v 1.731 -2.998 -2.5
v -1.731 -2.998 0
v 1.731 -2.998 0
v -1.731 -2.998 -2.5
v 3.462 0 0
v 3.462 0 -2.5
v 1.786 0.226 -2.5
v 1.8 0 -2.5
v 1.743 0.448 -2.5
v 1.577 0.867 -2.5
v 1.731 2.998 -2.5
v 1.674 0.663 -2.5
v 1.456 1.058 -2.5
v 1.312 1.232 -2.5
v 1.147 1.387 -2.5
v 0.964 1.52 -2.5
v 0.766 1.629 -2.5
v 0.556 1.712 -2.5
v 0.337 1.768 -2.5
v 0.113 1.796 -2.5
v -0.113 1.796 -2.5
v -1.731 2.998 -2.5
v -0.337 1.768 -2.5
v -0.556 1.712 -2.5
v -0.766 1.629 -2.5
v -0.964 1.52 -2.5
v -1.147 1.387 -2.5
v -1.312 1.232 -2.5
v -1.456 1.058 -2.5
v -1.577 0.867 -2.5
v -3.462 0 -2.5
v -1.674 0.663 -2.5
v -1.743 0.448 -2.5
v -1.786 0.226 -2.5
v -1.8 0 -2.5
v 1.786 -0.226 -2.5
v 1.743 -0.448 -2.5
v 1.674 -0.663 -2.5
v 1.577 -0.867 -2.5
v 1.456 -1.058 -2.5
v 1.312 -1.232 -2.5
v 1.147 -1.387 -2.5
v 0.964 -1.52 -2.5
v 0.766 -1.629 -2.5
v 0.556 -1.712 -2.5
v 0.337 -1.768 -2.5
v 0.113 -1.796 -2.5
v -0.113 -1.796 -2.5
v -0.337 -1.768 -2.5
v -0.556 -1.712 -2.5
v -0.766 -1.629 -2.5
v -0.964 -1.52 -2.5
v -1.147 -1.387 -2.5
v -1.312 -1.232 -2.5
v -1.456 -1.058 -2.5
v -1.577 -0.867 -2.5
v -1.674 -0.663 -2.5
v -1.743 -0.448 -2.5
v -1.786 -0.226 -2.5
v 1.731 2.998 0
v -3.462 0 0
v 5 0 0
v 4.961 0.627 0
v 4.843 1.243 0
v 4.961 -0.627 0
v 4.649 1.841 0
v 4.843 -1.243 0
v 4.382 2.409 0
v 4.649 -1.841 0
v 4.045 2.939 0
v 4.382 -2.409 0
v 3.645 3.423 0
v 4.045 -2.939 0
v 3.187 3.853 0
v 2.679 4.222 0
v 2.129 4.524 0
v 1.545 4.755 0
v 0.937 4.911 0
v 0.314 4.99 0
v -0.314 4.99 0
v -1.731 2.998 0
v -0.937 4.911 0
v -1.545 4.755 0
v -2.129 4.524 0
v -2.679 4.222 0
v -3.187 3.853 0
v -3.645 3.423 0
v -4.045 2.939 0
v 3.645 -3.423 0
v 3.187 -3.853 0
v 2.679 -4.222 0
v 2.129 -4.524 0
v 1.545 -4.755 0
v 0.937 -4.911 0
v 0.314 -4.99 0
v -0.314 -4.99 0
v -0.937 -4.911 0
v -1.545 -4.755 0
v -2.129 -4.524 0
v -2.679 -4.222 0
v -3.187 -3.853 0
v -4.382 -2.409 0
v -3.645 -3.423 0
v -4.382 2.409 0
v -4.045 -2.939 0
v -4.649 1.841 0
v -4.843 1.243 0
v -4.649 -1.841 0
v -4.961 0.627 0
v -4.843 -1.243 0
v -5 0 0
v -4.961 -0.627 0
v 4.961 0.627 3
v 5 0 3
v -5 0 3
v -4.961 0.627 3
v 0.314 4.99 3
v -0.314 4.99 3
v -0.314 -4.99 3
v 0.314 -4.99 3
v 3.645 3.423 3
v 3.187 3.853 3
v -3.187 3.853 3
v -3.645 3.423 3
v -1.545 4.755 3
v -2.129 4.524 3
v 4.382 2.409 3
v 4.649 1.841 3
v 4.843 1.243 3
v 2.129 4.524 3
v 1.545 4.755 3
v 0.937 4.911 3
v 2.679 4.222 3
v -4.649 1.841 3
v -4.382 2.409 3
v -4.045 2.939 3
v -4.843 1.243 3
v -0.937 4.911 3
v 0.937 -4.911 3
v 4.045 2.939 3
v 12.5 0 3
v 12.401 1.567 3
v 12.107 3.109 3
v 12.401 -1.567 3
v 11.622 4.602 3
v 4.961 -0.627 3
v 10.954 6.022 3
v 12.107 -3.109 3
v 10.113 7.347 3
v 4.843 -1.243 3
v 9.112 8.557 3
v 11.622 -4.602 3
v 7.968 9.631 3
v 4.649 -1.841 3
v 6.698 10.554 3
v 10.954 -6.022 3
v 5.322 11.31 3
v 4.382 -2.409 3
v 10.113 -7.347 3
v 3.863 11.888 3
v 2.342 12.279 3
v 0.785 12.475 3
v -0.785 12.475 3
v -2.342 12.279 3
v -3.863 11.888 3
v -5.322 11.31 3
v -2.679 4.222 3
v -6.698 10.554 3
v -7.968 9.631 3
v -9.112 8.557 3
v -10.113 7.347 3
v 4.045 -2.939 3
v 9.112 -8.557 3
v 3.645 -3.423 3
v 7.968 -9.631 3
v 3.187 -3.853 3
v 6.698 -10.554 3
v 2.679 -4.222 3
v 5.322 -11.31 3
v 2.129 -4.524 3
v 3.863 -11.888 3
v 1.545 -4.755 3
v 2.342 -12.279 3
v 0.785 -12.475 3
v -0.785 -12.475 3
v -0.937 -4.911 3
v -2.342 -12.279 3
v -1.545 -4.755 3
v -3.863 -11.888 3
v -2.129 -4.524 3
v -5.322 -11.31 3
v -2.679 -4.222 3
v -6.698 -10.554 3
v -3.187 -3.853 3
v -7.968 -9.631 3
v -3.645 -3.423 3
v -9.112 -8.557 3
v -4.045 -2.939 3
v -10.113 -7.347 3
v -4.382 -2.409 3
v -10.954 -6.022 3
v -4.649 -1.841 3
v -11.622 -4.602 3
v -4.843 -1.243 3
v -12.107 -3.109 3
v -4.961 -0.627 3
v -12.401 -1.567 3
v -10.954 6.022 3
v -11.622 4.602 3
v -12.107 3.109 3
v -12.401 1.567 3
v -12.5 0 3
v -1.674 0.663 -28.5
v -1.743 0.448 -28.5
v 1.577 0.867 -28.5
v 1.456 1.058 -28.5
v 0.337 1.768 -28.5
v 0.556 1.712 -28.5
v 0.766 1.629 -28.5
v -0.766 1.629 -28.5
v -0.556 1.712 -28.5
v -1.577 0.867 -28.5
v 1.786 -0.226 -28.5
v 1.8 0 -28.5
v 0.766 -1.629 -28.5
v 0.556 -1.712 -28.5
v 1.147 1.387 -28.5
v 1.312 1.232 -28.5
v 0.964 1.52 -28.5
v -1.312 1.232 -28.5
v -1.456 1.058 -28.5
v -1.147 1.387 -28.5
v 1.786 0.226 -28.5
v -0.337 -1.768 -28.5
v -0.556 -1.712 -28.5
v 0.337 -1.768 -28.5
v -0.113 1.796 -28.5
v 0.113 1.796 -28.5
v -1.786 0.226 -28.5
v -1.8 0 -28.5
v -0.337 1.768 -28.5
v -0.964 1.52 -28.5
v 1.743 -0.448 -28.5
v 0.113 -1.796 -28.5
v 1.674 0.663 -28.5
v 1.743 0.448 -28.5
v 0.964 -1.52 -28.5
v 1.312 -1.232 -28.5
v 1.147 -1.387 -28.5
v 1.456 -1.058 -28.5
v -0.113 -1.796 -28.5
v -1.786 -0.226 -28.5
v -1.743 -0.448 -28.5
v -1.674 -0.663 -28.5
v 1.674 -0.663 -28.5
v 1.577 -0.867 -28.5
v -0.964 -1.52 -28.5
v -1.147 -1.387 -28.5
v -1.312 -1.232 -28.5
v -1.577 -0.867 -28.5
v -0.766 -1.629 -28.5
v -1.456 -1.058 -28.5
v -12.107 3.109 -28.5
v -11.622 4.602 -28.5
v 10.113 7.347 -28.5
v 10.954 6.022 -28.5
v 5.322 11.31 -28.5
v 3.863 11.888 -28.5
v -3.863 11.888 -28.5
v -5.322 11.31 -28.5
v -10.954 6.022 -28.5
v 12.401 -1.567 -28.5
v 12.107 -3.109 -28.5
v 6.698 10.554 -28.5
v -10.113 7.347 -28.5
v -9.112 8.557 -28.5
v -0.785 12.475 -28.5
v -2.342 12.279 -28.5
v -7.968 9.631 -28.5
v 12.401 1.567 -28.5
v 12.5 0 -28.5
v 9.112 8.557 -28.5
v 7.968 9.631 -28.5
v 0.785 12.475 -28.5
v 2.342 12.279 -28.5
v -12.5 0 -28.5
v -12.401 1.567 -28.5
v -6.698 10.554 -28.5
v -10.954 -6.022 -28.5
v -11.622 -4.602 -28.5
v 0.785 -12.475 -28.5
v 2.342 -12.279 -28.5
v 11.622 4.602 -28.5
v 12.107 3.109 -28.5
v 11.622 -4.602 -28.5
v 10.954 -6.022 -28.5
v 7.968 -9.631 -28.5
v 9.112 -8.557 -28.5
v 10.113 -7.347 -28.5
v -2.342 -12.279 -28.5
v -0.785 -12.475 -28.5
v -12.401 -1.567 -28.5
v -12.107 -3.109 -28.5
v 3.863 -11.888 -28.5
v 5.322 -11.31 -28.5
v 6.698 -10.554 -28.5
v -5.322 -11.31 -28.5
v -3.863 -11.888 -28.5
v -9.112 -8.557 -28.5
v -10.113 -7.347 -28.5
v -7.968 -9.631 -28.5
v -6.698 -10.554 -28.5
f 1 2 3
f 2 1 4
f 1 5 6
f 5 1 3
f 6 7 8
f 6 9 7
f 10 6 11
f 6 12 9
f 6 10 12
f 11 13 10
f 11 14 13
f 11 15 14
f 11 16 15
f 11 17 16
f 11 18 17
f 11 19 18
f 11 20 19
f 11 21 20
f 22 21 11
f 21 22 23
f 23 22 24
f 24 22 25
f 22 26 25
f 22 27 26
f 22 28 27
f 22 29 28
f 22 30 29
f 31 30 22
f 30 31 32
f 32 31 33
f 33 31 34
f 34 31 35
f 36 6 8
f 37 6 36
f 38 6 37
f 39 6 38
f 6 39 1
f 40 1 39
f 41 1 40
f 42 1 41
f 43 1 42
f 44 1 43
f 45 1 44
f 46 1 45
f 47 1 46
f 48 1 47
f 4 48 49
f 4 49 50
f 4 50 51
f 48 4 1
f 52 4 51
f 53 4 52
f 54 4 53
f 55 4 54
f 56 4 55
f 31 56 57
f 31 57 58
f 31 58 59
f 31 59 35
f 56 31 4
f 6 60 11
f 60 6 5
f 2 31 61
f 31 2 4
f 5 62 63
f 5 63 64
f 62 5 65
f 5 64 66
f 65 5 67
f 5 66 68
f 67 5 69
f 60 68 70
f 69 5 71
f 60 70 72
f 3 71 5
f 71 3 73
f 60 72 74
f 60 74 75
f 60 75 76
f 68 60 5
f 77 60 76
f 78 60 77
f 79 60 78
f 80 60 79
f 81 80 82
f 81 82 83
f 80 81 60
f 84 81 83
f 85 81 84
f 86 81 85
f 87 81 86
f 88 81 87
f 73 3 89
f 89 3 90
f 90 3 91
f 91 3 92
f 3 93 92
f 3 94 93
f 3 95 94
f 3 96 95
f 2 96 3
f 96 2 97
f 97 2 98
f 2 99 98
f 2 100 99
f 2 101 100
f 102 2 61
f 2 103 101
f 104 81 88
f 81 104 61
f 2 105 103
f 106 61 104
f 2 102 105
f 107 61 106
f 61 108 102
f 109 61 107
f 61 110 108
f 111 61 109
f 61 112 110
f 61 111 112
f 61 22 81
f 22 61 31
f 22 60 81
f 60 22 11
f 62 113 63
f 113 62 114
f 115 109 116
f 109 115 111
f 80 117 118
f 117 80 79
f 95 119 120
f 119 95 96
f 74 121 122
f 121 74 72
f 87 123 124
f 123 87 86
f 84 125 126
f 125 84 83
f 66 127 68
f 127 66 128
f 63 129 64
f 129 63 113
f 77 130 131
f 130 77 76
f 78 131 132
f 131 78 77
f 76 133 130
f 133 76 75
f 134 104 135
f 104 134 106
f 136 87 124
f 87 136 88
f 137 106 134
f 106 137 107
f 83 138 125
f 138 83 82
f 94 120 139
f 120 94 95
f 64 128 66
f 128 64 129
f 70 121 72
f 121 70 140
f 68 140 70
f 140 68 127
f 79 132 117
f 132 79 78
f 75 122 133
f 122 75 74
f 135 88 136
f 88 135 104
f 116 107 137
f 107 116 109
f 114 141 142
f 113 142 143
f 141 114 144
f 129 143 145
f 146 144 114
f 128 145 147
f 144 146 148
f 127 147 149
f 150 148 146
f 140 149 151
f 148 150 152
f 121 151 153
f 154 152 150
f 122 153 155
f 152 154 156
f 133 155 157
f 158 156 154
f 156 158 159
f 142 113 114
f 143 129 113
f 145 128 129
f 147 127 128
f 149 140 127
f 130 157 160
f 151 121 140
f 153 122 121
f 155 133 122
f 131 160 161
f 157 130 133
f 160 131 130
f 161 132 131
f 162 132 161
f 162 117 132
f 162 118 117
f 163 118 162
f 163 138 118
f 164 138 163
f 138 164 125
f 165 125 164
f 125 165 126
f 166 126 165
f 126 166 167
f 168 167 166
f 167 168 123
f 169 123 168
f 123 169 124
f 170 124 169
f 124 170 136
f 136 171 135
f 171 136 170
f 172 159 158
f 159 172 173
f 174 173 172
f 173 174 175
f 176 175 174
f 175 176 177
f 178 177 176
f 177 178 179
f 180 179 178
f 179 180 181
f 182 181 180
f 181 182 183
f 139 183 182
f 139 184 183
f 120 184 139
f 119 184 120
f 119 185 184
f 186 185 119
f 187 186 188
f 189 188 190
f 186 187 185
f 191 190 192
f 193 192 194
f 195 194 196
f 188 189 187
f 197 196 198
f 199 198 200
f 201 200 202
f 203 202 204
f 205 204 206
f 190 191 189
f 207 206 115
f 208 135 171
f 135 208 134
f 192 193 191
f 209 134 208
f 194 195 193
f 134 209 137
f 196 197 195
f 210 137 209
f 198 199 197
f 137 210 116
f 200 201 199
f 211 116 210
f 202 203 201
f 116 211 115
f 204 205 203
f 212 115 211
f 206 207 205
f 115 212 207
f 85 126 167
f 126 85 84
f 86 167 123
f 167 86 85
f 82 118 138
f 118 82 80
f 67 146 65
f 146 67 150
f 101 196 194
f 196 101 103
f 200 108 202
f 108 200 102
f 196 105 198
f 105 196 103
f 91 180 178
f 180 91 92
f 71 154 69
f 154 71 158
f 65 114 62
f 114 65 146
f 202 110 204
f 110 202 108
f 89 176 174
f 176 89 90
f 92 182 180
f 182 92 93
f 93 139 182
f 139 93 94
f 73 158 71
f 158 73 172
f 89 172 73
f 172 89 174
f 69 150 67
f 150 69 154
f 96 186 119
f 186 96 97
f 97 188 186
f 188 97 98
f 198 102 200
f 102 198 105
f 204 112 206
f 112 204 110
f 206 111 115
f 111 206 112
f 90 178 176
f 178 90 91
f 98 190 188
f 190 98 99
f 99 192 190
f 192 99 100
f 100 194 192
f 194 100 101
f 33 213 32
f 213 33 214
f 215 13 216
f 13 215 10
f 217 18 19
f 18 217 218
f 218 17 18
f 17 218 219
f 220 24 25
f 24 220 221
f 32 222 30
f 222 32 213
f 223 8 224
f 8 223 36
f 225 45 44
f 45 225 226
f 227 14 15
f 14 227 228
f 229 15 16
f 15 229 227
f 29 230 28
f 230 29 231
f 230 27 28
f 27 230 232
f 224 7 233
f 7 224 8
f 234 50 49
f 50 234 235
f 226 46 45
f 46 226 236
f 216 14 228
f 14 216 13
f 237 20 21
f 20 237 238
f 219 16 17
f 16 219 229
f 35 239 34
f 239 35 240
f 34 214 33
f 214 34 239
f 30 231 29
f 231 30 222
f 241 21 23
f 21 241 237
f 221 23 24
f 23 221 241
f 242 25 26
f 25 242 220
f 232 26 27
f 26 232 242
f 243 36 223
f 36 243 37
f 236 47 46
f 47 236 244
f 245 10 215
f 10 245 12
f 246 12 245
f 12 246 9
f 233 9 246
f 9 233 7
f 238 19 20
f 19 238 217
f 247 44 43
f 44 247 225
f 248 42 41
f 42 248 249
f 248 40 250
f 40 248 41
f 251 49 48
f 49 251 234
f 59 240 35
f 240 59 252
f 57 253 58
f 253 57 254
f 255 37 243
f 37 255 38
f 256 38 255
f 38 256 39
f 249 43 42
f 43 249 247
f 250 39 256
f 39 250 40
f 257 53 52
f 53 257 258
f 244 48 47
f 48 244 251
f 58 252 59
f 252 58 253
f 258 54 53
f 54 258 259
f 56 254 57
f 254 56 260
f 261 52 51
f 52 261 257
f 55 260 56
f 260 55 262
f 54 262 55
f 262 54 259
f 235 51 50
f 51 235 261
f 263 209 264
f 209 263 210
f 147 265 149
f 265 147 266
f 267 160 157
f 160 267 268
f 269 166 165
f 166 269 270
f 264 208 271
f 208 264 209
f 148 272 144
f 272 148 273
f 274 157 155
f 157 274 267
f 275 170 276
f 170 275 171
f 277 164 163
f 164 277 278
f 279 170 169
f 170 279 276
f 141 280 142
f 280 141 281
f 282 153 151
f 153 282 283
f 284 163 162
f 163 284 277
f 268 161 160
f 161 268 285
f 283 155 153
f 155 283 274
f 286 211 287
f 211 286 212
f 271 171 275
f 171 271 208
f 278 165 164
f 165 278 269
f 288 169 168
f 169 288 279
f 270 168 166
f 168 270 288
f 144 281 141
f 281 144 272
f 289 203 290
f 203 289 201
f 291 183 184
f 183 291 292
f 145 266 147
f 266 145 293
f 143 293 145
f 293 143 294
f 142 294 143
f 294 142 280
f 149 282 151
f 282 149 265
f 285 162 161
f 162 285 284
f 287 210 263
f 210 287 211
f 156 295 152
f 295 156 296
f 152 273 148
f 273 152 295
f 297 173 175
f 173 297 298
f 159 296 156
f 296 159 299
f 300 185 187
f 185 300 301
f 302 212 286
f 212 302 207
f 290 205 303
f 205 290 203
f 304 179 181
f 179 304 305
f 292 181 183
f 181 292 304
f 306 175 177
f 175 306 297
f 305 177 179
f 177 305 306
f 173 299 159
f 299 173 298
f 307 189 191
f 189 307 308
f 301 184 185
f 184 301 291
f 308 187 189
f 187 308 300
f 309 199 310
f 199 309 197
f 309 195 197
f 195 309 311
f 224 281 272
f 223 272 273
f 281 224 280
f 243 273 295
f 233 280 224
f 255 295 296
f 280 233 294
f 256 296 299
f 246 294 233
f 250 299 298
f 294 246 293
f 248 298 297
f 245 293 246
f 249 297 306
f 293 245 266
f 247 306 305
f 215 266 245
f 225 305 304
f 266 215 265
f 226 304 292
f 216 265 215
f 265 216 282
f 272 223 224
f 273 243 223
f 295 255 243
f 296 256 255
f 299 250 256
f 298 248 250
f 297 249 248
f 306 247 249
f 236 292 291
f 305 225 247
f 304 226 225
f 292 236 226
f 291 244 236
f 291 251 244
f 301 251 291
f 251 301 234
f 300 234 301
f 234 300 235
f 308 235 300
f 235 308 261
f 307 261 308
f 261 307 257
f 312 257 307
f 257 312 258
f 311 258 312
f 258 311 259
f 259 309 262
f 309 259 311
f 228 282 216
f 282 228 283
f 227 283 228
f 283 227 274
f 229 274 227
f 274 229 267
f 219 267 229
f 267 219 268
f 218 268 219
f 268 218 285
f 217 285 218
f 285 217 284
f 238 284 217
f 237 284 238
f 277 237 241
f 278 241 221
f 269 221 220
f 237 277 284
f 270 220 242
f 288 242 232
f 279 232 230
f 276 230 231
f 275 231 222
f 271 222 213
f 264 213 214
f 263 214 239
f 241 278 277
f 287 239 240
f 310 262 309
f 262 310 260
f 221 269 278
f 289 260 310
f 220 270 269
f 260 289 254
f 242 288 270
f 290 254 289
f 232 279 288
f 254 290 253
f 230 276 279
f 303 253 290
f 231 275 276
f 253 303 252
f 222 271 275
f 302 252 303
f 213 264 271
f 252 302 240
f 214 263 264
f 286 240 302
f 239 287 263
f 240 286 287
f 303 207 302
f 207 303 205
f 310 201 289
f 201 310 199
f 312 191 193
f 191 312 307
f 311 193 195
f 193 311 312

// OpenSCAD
$fn = 50;


difference() {
	union() {
		translate(v = [0, 0, -28.5000000000]) {
			cylinder(h = 31.5000000000, r = 12.5000000000);
		}
	}
	union() {
		translate(v = [0, 0, 0]) {
			rotate(a = [0, 0, 0]) {
				difference() {
					union() {
						translate(v = [0, 0, -2.5000000000]) {
							linear_extrude(height = 2.5000000000) {
								polygon(points = [[3.4620000000, 0.0000000000], [1.7310000000, 2.9981799479], [-1.7310000000, 2.9981799479], [-3.4620000000, 0.0000000000], [-1.7310000000, -2.9981799479], [1.7310000000, -2.9981799479]]);
							}
						}
					}
					union();
				}
			}
		}
		#cylinder(h = 3, r = 5.0000000000);
		#translate(v = [0, 0, -100.0000000000]) {
			cylinder(h = 200, r = 1.8000000000);
		}
	}
}
